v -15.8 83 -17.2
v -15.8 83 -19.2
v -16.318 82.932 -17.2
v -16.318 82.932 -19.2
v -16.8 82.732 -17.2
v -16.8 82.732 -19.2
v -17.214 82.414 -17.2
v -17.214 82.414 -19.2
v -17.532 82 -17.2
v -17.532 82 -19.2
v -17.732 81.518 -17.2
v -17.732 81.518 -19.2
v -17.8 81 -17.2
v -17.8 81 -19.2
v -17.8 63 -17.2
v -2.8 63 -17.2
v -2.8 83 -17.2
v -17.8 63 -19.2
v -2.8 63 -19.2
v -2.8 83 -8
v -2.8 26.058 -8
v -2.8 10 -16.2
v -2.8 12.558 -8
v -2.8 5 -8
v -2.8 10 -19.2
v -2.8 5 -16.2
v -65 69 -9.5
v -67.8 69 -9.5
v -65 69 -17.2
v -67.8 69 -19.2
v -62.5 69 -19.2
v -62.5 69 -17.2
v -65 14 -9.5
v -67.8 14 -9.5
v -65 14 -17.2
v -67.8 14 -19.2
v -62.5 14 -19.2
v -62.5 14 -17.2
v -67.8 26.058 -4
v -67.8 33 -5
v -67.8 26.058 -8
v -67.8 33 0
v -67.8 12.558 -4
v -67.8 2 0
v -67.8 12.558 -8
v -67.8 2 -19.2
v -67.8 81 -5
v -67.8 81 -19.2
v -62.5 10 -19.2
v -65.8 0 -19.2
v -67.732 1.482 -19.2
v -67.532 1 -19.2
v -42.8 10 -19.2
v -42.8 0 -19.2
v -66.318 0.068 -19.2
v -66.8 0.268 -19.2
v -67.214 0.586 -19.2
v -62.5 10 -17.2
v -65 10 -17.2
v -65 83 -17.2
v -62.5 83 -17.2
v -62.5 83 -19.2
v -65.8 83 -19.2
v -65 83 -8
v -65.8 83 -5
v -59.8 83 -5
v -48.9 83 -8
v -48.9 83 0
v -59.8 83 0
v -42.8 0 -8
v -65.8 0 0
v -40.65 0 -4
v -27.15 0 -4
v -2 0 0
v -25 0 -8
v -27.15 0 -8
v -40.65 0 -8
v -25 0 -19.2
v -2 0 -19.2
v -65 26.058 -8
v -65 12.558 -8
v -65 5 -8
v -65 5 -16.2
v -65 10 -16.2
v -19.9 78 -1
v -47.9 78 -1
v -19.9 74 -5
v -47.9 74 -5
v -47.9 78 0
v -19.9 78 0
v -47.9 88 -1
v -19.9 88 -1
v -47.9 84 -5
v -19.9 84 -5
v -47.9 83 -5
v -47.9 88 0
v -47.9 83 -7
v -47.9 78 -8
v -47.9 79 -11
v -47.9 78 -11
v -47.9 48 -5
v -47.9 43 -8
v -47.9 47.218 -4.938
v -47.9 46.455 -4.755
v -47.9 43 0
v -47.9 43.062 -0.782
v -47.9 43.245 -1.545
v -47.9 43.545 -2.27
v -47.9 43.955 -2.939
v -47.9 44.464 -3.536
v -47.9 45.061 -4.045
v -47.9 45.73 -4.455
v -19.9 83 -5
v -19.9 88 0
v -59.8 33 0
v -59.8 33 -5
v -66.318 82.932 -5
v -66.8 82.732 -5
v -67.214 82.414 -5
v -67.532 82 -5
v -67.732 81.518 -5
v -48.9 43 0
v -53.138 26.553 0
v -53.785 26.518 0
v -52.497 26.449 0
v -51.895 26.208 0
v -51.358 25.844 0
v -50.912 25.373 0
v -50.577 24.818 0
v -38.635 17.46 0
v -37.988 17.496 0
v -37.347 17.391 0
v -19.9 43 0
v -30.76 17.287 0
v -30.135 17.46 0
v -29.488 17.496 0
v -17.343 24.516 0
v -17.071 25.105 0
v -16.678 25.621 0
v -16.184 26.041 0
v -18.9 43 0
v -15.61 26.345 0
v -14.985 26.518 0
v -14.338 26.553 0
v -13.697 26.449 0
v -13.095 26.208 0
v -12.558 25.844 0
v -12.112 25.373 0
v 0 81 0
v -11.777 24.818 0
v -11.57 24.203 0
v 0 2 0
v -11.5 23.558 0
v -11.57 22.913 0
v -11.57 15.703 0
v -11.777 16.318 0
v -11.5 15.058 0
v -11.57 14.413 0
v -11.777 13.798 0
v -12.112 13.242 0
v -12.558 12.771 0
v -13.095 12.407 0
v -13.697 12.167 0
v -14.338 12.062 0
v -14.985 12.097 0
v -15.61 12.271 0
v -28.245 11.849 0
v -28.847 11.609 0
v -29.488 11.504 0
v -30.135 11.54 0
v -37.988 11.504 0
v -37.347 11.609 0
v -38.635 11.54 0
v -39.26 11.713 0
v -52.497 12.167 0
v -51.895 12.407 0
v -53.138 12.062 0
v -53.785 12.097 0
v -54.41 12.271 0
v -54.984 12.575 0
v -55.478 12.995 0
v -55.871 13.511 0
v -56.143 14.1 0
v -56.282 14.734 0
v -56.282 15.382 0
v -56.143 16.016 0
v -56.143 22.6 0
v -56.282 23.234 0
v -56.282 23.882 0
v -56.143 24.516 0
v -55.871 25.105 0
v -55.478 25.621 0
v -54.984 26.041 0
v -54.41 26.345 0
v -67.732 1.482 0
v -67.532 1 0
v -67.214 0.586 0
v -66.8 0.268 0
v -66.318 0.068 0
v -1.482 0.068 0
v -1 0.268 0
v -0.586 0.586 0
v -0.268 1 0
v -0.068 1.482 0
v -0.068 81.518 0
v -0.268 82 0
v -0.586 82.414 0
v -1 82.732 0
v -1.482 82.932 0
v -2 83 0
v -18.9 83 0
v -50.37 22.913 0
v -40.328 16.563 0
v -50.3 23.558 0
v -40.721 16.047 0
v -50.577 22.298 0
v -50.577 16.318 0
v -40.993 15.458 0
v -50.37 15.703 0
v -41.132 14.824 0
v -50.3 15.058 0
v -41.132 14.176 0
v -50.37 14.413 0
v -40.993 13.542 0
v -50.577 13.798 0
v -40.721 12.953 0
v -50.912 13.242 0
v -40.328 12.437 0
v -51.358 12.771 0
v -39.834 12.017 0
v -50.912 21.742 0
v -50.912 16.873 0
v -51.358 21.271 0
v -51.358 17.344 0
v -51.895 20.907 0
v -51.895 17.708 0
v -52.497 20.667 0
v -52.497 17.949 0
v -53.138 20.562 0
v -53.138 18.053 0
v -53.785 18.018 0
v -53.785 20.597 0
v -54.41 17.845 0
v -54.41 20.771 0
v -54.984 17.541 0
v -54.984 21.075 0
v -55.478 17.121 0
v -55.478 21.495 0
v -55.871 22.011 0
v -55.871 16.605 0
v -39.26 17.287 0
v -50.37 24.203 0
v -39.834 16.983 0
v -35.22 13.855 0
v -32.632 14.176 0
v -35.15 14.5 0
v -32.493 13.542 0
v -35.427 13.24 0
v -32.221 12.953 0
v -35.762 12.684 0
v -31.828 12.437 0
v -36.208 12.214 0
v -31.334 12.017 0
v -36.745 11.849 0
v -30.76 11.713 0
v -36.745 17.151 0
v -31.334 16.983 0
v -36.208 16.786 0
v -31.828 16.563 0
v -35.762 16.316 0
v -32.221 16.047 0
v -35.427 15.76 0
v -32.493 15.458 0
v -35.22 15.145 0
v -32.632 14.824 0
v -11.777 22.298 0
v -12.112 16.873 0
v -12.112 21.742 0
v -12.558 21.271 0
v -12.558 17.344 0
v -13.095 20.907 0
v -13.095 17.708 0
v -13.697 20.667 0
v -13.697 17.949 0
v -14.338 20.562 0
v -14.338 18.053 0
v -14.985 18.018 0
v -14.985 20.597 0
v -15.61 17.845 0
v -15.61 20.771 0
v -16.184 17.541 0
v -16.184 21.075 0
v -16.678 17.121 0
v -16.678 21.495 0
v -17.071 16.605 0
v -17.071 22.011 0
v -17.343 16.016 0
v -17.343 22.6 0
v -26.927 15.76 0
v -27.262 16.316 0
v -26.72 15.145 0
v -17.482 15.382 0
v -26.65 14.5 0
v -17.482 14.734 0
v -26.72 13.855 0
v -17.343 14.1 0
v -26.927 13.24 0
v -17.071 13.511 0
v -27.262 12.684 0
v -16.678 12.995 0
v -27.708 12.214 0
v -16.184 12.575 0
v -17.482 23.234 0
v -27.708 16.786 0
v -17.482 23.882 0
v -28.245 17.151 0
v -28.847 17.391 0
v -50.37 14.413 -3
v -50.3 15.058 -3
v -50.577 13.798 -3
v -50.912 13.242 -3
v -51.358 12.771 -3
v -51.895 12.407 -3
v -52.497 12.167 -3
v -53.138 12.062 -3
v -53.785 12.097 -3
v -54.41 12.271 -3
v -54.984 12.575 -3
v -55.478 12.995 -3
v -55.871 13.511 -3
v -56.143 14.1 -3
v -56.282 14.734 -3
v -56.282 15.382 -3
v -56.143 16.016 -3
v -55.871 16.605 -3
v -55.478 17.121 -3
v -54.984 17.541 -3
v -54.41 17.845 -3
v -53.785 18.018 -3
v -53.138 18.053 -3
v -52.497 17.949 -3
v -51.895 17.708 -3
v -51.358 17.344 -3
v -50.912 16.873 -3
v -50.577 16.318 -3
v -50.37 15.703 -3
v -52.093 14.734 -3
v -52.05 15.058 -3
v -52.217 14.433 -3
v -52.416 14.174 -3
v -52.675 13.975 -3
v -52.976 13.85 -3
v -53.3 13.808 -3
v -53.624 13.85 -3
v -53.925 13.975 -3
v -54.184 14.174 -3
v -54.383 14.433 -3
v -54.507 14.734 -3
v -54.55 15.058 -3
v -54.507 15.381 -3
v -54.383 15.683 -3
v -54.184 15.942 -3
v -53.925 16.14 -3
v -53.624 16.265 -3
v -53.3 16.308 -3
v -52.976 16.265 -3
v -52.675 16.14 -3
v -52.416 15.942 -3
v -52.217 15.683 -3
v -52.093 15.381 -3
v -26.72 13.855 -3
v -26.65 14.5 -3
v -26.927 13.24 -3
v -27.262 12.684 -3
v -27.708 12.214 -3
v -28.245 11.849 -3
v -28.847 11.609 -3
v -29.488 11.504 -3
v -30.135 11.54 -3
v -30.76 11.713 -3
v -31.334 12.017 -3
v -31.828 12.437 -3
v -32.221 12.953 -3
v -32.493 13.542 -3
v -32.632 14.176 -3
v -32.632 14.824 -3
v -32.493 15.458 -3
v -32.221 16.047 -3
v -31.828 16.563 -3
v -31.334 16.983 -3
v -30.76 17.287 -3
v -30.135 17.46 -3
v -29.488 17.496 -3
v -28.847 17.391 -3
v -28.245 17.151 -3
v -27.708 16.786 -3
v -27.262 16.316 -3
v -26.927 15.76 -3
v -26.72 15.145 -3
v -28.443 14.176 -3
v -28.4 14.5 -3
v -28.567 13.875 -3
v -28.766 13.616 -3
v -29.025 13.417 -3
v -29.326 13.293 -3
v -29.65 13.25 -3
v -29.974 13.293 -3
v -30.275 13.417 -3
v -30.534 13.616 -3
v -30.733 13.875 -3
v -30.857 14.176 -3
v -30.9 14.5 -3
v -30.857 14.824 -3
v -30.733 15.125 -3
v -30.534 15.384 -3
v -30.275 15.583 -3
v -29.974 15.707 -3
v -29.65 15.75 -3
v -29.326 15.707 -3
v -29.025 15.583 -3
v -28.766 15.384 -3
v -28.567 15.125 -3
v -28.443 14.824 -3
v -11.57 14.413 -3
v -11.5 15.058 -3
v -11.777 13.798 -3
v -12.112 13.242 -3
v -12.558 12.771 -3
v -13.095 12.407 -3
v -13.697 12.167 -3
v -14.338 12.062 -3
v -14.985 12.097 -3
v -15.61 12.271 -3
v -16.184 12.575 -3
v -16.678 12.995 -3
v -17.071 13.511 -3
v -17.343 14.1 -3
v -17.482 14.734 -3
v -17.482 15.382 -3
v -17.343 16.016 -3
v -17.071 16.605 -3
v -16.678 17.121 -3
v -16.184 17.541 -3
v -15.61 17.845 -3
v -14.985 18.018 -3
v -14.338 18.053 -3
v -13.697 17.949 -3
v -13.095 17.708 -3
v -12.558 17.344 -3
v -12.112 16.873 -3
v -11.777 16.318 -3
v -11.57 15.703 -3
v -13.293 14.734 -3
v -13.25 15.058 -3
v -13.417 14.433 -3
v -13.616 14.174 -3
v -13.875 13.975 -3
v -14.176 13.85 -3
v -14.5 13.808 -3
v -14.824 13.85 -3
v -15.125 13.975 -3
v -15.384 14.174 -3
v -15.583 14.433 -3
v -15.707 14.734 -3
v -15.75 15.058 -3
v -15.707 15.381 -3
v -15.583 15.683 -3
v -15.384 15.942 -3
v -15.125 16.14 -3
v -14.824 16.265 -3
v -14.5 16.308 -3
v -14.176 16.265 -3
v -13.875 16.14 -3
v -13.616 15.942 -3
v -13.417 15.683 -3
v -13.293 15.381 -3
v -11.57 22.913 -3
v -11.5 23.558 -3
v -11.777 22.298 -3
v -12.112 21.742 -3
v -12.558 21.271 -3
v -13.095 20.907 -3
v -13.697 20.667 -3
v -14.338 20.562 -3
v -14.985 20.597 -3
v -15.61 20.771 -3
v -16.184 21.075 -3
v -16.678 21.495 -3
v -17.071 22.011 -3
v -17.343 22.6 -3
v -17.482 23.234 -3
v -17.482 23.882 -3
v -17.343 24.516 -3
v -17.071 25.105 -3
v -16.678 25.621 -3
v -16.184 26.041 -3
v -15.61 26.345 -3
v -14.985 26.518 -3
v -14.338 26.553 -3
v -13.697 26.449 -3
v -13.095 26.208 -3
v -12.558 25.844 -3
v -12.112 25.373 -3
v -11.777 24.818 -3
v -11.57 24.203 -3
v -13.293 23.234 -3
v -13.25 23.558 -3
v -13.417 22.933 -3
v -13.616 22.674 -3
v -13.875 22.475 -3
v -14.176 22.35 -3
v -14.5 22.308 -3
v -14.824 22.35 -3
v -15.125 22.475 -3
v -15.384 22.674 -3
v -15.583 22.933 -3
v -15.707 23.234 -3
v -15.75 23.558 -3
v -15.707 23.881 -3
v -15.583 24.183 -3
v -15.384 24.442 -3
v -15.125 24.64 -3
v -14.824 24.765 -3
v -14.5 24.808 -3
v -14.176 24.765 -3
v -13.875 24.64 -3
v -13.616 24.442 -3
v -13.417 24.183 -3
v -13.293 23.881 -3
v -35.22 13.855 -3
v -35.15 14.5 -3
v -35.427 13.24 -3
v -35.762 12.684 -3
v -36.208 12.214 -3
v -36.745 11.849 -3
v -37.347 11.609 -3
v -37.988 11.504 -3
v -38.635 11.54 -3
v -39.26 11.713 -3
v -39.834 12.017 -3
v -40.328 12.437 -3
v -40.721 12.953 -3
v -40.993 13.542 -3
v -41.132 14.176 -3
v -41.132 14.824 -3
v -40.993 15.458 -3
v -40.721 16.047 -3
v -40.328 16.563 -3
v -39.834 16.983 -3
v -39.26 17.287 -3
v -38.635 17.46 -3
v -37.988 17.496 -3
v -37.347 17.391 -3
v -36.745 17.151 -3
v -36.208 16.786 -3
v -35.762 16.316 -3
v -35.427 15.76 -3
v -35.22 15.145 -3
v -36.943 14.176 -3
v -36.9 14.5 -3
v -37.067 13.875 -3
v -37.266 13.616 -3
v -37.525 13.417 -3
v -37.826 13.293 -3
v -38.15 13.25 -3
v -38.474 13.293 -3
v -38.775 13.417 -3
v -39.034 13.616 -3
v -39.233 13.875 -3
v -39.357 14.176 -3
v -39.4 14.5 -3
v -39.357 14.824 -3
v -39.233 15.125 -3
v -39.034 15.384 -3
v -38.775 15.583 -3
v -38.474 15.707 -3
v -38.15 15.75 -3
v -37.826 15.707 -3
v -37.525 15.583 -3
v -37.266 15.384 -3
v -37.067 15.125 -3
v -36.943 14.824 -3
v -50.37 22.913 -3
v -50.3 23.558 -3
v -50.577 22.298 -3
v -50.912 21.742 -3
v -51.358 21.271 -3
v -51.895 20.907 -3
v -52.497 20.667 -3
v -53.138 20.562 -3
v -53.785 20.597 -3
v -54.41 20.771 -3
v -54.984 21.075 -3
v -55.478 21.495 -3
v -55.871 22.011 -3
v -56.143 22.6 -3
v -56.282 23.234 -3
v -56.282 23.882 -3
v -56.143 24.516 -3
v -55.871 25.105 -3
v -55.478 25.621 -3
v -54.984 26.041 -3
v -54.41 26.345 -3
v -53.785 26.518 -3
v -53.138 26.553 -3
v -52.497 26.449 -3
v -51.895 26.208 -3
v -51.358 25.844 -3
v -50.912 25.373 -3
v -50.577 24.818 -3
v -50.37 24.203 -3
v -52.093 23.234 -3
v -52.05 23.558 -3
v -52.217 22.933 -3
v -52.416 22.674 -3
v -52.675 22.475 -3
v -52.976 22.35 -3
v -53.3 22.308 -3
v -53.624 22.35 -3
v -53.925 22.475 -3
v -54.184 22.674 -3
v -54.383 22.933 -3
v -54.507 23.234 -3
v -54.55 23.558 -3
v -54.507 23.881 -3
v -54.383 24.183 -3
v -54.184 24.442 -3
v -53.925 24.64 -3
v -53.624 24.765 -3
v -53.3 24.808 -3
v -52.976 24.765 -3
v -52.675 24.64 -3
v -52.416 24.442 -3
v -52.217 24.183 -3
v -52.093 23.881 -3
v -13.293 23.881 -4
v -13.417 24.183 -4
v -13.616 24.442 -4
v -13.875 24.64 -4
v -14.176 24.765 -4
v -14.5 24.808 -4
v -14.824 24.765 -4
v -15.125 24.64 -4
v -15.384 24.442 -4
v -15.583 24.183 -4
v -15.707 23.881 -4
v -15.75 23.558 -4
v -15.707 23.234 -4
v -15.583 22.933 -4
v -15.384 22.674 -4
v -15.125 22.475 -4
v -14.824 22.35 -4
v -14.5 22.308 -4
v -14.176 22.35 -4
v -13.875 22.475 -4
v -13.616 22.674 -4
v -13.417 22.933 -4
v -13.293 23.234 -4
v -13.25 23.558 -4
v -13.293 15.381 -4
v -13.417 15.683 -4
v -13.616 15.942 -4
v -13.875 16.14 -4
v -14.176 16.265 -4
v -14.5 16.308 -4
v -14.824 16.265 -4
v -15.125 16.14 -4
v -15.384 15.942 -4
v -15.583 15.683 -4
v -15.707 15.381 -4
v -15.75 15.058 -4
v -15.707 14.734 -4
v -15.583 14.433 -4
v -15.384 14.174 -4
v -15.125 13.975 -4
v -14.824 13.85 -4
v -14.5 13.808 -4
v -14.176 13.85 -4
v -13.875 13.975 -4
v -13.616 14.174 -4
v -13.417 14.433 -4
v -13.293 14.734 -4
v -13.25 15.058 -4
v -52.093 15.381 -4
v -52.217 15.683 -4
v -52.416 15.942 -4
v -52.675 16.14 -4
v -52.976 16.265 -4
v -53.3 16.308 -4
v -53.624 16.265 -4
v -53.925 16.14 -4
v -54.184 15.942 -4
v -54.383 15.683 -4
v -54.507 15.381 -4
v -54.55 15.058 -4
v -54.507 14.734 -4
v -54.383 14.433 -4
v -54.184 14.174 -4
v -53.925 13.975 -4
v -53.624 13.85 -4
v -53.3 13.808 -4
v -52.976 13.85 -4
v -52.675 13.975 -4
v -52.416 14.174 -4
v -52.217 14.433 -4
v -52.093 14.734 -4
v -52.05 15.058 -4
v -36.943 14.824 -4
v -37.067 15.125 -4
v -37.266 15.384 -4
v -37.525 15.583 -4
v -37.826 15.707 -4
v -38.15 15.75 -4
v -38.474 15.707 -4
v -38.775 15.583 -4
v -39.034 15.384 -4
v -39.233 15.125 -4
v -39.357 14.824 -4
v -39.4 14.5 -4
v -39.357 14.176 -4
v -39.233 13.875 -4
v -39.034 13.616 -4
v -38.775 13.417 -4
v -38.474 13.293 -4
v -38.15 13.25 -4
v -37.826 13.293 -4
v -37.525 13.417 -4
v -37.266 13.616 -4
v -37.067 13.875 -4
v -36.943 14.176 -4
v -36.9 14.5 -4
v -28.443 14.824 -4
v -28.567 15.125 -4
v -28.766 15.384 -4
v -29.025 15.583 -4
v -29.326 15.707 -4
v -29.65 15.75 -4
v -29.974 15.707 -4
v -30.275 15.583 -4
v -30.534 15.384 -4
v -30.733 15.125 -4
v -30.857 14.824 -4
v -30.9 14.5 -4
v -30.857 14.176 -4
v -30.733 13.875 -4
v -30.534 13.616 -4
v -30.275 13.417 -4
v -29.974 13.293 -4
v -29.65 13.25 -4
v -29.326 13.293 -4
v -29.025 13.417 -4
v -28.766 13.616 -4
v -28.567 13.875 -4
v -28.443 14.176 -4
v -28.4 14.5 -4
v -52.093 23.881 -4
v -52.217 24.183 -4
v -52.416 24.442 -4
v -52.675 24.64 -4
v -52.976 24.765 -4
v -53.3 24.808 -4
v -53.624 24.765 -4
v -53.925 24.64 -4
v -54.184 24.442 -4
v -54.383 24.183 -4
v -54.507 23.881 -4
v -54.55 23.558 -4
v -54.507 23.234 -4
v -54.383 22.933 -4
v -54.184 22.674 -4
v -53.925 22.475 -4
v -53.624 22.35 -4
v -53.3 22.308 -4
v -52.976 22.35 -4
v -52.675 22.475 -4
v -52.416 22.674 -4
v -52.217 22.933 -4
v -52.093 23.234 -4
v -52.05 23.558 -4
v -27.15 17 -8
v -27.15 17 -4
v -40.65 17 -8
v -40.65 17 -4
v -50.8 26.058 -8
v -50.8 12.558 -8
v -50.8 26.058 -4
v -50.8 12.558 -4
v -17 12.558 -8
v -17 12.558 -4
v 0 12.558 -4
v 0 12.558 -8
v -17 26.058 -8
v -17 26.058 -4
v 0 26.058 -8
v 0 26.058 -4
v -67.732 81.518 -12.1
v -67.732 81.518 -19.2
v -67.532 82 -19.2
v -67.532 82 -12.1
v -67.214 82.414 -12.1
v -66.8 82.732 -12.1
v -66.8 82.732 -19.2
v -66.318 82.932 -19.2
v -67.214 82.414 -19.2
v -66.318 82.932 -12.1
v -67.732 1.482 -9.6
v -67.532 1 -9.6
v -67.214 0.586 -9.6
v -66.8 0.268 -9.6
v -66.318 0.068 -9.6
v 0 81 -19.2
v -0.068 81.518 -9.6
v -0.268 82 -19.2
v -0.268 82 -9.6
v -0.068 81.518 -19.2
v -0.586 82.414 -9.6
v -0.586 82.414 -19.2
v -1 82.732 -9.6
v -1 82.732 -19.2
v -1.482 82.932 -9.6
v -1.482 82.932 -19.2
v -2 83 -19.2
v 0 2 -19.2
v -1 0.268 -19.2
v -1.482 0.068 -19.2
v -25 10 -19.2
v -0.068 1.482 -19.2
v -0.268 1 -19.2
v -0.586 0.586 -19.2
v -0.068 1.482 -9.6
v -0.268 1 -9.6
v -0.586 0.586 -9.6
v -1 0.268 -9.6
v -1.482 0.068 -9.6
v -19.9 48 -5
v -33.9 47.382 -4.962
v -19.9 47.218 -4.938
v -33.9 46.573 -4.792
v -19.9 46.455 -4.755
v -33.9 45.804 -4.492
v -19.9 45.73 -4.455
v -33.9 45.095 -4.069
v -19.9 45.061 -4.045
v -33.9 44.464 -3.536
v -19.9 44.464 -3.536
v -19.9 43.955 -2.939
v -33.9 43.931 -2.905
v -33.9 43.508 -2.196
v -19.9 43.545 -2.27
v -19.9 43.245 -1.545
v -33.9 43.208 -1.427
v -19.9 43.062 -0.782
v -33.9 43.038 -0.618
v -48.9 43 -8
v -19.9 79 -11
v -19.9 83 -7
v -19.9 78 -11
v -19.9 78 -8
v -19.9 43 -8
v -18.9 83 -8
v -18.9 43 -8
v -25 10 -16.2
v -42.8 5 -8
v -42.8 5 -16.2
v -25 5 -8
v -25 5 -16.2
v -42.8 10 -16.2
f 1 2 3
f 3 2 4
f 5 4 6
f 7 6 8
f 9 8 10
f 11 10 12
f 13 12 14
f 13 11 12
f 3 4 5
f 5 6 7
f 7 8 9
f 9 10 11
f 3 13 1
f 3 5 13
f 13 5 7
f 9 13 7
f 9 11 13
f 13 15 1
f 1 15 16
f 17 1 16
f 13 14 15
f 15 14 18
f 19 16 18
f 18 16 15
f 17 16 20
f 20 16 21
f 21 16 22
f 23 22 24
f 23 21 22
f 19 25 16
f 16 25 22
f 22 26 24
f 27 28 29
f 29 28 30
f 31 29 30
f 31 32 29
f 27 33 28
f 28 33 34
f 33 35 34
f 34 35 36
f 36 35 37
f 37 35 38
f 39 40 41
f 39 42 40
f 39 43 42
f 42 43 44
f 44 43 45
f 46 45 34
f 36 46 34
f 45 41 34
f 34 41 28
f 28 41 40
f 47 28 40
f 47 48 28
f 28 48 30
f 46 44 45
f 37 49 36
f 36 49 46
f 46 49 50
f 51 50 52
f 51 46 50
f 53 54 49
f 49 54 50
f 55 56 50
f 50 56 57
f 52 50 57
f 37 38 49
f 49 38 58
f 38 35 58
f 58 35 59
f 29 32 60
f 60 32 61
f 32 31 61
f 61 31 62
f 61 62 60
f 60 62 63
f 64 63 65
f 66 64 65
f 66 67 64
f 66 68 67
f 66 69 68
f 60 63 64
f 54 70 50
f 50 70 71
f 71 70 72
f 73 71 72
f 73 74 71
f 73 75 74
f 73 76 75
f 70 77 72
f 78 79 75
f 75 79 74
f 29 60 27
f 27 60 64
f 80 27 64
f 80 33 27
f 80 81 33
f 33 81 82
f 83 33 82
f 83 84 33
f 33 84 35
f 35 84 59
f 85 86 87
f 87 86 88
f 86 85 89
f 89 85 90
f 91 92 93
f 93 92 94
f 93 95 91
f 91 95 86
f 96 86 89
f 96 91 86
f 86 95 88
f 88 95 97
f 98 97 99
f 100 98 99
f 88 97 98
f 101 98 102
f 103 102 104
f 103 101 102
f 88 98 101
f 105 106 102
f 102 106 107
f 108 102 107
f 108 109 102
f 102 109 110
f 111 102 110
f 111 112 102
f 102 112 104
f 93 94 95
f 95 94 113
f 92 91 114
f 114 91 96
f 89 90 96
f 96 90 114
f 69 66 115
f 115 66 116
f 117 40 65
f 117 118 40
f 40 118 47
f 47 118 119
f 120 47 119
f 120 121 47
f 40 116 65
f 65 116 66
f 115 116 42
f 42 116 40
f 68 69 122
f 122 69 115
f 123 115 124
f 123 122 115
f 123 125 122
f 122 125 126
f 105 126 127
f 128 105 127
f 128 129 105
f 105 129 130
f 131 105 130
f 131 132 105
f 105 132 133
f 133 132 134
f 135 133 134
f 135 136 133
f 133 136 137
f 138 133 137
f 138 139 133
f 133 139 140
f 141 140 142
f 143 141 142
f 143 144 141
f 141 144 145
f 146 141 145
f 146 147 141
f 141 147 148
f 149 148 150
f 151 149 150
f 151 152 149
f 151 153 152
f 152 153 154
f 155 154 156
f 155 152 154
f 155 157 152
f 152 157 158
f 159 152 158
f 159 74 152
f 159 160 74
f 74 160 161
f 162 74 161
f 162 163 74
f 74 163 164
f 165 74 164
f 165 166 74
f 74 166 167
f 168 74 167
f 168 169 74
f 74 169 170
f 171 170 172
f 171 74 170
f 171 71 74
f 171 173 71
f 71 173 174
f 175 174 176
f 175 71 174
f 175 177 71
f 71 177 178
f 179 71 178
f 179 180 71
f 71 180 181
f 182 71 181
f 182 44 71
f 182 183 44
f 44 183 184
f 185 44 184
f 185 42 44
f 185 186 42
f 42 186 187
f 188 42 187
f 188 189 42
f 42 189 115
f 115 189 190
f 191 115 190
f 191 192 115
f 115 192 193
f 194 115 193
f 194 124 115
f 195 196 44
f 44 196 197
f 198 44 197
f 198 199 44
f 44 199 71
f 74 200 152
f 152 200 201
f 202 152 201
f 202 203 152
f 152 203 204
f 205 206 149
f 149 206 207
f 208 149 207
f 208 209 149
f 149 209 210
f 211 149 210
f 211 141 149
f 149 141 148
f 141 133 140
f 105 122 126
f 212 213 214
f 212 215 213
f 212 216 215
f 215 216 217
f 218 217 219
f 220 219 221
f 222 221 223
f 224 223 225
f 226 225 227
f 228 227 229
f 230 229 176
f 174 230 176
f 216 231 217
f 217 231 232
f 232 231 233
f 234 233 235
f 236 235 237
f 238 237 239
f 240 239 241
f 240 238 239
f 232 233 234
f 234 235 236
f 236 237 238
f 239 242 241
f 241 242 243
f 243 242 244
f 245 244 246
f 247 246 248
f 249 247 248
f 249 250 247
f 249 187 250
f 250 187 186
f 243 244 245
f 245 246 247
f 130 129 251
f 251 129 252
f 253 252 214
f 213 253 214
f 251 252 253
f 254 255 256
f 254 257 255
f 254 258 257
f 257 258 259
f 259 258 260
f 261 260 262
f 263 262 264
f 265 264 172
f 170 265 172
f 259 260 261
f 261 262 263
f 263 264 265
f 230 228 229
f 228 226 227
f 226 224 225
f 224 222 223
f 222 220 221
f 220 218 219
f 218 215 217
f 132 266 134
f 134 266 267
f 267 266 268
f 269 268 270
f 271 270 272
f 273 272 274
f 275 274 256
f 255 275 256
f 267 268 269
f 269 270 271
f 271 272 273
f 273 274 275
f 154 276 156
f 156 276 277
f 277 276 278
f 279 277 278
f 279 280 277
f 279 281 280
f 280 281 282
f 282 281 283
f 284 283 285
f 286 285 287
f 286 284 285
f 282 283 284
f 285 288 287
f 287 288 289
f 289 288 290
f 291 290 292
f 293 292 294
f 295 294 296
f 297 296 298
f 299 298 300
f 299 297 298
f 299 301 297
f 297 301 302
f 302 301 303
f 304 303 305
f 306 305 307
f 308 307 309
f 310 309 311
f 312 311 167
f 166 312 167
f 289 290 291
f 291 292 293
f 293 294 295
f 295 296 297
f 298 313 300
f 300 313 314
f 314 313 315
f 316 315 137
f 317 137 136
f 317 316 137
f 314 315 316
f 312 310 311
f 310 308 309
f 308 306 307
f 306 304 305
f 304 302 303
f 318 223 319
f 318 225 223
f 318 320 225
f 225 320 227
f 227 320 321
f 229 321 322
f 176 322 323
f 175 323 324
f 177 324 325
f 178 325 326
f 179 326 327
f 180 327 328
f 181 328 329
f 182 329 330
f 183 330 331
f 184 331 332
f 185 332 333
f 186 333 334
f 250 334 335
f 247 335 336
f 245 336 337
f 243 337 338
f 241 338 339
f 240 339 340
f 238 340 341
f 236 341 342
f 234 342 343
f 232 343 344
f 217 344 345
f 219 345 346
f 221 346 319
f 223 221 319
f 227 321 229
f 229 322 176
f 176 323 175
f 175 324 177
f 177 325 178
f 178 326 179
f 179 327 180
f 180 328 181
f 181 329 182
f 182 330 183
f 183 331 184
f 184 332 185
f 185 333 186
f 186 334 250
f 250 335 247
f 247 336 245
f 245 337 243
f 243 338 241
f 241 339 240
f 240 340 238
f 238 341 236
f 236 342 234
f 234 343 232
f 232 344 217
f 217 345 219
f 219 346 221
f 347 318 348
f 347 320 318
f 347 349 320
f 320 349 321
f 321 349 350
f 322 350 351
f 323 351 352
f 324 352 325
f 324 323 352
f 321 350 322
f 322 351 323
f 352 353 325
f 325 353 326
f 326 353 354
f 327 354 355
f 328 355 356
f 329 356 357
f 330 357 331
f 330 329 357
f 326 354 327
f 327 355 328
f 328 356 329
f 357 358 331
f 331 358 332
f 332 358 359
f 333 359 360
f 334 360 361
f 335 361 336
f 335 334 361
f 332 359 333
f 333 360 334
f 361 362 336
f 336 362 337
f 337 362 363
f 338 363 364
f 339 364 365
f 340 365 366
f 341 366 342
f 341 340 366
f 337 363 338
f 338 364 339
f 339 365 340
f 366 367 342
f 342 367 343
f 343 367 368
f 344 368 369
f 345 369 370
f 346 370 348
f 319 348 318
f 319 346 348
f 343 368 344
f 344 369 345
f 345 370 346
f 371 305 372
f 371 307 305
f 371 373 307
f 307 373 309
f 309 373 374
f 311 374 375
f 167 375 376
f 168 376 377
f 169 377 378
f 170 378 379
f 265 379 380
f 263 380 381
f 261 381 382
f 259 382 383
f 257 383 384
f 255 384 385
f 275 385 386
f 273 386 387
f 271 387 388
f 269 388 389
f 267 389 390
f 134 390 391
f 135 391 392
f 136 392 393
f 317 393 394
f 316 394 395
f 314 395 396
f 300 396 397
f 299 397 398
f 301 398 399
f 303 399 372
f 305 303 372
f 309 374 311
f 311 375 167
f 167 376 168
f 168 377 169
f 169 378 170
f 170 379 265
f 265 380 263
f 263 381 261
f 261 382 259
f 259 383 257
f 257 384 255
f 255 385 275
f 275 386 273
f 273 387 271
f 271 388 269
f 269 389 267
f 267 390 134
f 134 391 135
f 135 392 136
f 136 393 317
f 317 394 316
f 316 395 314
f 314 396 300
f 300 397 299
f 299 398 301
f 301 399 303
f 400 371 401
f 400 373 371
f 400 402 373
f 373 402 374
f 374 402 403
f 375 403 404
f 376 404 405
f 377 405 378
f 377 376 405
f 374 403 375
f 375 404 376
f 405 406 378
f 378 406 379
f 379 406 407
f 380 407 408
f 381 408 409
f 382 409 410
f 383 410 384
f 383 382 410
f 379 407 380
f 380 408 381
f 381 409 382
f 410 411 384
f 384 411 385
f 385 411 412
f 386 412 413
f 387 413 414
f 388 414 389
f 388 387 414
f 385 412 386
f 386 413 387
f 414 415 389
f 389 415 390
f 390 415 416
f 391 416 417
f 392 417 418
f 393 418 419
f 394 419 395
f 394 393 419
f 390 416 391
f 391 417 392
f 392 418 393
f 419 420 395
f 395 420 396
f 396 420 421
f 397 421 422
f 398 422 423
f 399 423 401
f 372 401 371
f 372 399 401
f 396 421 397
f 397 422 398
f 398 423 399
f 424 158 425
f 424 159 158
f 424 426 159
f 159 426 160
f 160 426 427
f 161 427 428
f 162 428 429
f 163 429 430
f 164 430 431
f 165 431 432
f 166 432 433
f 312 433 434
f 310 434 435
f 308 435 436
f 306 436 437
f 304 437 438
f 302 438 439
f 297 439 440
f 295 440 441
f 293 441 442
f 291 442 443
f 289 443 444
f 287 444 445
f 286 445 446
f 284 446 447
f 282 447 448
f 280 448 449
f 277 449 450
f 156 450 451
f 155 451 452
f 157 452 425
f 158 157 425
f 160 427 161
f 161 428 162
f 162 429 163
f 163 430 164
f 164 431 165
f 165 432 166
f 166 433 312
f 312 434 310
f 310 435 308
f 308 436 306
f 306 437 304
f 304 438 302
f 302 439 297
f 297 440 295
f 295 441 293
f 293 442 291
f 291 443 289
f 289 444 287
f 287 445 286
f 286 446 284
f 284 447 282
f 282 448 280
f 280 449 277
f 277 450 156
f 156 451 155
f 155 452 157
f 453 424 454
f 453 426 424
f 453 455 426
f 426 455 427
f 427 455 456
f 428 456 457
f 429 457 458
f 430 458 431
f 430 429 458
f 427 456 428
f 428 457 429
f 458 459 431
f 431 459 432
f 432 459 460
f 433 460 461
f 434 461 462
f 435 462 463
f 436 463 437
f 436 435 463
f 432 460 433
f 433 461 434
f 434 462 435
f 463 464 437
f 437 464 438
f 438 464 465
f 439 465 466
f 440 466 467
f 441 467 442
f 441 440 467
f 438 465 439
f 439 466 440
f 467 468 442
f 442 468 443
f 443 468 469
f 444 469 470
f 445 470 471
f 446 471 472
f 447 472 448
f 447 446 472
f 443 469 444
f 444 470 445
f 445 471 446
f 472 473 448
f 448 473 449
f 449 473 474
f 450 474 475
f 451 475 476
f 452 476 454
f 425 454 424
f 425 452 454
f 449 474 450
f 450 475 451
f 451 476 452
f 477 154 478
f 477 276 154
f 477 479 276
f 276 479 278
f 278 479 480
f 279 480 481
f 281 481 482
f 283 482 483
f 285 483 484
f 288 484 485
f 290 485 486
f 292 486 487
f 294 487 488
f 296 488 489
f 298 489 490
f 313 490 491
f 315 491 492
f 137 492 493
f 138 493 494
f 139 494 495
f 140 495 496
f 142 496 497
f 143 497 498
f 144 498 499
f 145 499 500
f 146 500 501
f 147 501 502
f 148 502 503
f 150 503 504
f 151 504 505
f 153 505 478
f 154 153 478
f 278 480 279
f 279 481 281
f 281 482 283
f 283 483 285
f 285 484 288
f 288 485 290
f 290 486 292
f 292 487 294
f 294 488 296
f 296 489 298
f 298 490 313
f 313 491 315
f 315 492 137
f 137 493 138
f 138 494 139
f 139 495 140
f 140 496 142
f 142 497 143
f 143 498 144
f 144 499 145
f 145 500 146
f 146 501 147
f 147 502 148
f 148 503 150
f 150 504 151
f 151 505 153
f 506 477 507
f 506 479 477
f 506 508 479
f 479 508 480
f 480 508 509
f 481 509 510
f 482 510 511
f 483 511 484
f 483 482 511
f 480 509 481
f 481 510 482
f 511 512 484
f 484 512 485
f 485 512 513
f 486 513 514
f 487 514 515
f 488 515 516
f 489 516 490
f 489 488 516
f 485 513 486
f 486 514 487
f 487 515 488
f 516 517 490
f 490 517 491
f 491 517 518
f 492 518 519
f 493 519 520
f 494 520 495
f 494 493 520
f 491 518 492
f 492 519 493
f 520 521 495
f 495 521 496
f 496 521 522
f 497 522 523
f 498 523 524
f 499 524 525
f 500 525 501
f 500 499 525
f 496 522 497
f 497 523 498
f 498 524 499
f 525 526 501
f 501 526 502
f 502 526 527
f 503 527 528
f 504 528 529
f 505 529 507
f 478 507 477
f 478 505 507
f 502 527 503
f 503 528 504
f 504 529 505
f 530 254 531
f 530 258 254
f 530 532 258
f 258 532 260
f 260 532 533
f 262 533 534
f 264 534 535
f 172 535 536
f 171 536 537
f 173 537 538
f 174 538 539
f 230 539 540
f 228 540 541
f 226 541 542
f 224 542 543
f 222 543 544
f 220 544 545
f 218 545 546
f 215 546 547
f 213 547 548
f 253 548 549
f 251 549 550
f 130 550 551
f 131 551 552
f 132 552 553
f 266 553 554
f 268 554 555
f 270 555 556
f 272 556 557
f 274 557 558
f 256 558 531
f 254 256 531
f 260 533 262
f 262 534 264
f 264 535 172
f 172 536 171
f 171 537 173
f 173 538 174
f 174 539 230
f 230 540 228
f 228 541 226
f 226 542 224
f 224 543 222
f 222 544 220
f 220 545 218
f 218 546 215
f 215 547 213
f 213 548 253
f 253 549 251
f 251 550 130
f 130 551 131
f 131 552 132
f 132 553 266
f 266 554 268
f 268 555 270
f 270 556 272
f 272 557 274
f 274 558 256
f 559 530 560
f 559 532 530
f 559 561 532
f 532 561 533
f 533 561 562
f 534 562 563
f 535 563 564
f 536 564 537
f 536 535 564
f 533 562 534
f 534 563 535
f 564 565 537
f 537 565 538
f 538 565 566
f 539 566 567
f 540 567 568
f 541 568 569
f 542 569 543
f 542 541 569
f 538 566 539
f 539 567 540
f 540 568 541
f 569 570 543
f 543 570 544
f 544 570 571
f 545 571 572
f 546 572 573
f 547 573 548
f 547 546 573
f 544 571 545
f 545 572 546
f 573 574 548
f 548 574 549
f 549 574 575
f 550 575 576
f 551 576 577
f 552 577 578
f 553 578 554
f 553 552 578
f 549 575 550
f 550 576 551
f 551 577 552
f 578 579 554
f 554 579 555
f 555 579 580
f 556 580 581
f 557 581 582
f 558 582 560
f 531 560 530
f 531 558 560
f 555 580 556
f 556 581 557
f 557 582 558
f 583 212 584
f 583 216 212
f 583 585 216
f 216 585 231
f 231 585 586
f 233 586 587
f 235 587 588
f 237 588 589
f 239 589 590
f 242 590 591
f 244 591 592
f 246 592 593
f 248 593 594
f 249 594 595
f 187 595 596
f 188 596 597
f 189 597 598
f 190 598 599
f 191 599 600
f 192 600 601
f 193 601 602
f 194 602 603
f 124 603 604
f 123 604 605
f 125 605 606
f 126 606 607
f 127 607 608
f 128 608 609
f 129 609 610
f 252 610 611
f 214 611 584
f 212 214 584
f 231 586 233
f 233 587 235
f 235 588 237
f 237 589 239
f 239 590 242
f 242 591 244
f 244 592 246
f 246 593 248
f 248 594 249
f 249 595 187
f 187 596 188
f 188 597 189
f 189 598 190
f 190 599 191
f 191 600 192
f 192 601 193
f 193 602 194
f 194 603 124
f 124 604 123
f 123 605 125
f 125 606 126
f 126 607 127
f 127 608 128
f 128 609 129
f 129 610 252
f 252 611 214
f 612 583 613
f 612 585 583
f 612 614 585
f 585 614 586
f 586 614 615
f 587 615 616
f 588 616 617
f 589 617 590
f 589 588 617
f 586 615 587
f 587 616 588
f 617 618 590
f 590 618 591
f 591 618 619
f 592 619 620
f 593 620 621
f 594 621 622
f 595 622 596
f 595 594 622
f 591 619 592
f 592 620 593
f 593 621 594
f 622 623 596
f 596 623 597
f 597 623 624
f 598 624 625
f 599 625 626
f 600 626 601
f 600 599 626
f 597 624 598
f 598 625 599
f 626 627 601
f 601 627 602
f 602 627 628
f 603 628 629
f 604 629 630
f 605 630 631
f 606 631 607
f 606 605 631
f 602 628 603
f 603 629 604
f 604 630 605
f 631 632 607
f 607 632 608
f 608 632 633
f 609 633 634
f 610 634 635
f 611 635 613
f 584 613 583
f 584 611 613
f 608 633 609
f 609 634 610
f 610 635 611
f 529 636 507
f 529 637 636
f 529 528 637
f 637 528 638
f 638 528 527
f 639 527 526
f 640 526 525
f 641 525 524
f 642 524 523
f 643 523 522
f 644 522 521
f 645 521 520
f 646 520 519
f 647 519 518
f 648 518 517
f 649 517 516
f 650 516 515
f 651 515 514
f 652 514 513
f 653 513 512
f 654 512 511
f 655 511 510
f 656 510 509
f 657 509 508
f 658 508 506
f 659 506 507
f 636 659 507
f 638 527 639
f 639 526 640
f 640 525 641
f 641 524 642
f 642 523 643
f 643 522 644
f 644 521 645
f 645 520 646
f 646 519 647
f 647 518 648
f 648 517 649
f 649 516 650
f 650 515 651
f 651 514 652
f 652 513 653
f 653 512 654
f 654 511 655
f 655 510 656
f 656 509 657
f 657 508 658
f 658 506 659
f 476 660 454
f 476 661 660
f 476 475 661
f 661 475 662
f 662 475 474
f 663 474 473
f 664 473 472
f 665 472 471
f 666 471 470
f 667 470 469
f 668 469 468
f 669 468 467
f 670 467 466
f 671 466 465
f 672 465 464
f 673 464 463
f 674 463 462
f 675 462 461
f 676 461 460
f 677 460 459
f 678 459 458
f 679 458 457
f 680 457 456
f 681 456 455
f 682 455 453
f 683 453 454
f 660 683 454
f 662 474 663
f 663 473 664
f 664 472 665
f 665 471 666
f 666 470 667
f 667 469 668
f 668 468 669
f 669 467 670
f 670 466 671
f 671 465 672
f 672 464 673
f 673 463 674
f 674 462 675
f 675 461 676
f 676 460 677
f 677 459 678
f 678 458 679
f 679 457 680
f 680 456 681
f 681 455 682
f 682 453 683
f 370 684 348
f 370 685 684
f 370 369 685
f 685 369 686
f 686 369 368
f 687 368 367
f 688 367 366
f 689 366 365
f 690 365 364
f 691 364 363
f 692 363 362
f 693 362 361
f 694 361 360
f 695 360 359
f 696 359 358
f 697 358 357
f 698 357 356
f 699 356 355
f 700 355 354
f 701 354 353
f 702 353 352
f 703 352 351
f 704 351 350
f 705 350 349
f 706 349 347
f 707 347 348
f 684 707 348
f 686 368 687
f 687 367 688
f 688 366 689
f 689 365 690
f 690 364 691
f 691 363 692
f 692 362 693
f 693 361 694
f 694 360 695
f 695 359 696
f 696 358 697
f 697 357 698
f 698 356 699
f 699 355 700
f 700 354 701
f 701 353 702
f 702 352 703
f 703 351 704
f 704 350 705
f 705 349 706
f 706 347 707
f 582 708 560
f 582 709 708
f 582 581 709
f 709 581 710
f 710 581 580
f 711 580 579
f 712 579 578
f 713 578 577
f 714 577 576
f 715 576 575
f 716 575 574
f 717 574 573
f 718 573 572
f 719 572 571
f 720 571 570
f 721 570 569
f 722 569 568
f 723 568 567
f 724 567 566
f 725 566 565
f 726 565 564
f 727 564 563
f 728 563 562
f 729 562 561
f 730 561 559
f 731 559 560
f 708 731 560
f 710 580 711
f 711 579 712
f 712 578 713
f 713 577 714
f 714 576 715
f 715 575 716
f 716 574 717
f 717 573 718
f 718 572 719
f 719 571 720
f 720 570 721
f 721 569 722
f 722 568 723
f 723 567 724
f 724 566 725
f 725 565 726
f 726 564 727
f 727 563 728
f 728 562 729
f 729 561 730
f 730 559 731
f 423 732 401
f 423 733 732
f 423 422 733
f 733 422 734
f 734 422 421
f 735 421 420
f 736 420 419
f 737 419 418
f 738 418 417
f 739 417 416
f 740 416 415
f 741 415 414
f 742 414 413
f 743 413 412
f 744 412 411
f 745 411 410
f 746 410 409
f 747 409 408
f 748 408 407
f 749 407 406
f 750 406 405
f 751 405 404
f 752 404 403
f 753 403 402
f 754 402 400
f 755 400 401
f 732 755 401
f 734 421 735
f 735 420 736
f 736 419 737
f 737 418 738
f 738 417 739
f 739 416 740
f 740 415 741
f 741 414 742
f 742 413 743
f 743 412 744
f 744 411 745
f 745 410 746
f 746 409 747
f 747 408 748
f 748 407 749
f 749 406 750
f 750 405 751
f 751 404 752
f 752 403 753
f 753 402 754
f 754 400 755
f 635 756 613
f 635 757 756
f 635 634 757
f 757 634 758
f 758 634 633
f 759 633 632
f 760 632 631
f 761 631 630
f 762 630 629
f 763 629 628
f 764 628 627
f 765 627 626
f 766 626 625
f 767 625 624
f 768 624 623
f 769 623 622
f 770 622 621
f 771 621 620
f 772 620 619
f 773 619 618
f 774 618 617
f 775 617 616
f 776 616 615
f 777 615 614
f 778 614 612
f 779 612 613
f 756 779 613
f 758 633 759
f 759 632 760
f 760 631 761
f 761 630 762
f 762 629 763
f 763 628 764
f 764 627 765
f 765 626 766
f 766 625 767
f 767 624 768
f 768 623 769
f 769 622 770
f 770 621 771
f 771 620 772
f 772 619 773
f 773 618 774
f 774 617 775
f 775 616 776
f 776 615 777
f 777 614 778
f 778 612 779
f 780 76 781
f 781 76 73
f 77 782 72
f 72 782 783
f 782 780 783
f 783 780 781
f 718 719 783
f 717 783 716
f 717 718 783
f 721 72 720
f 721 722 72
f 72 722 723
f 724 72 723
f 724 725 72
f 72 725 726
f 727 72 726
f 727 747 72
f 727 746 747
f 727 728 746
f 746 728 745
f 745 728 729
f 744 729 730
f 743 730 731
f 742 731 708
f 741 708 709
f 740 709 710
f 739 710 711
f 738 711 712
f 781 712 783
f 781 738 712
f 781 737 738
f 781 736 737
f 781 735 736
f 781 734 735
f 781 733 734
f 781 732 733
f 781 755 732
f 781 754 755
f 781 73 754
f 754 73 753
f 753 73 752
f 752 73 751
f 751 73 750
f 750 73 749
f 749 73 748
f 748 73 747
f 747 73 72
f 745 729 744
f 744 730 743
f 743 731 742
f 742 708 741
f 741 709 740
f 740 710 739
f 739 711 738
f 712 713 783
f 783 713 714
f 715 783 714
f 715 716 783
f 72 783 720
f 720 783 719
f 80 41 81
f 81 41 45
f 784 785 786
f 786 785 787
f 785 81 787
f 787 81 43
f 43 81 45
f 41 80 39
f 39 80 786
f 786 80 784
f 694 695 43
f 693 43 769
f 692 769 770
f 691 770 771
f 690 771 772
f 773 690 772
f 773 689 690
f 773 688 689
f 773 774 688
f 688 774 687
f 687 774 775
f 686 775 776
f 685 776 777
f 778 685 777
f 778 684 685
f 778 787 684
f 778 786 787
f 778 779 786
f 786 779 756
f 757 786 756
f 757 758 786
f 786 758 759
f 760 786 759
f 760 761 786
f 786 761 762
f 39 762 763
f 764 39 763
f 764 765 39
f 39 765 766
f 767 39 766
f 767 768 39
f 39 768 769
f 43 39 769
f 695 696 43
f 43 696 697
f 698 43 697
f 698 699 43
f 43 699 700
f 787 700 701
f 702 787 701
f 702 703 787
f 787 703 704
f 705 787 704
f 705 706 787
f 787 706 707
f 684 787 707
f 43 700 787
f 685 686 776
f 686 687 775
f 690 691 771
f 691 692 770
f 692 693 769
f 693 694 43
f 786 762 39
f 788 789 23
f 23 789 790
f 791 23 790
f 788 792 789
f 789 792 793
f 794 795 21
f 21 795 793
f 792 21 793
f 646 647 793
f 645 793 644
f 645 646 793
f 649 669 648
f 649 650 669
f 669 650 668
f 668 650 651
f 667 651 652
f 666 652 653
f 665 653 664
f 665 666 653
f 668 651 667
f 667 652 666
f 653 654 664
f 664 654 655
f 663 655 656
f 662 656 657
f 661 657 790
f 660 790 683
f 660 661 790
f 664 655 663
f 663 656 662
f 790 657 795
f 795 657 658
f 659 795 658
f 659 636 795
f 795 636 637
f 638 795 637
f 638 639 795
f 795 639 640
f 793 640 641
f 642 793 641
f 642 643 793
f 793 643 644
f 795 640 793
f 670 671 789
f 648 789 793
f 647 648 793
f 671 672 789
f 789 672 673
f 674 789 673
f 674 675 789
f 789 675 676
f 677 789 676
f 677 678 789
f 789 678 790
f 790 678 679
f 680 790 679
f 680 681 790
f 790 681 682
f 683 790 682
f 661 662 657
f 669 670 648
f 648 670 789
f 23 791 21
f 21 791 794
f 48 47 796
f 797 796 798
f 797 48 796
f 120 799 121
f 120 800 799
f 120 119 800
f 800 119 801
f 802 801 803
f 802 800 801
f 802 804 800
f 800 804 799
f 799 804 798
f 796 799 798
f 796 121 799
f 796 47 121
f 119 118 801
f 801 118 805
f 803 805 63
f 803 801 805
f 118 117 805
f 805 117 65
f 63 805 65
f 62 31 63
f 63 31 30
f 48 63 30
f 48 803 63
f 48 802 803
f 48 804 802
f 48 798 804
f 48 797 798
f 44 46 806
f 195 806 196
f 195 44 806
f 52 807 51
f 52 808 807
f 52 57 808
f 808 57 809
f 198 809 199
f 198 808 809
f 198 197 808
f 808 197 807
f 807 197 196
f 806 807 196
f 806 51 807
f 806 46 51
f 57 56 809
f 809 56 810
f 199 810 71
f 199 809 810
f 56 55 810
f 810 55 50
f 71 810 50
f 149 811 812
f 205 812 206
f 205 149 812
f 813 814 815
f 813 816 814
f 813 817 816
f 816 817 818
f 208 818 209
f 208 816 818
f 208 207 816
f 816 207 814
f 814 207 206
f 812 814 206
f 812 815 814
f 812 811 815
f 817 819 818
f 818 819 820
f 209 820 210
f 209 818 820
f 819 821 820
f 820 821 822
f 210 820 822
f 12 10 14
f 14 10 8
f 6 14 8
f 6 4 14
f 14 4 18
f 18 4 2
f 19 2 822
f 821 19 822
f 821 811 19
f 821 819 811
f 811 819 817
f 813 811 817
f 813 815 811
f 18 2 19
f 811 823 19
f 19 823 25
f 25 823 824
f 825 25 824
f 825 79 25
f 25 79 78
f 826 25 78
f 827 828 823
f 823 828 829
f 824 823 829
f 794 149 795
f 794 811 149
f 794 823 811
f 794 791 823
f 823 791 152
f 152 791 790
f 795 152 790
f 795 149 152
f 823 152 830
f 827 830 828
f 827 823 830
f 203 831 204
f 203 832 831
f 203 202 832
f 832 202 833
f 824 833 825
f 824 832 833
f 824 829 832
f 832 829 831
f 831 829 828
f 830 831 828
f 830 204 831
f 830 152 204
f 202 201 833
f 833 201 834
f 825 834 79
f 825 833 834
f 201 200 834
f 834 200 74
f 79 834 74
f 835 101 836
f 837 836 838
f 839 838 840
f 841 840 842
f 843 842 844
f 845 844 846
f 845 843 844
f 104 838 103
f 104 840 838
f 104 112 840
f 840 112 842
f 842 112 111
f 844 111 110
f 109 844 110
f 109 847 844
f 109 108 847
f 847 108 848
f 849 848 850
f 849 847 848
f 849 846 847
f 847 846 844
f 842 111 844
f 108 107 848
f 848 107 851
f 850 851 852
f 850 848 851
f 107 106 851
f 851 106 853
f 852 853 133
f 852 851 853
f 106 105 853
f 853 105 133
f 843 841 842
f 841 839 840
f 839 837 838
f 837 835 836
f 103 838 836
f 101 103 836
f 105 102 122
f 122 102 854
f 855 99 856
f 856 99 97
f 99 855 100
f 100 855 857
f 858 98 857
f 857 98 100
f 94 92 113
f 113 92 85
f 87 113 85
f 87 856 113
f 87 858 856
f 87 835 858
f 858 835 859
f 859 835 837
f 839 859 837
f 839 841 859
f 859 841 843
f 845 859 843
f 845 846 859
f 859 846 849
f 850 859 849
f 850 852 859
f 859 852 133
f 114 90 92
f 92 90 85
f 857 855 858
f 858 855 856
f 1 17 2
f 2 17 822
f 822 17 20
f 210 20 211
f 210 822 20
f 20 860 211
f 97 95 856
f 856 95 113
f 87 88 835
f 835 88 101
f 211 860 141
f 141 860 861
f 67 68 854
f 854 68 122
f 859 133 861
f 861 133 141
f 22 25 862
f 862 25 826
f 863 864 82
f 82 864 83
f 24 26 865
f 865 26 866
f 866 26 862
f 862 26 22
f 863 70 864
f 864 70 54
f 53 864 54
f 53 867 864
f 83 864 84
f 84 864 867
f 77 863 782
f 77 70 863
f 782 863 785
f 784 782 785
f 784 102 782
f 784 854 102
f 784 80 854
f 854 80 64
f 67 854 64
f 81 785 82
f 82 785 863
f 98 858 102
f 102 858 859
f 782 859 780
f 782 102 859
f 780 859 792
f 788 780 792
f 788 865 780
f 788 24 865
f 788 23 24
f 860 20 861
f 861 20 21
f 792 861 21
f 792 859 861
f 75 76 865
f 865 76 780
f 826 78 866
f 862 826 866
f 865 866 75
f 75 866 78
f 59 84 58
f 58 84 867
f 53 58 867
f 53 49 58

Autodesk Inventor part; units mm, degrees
ref_plane "YZ Plane" through (0, 0, 0) normal (1, 0, 0) x (0, 1, 0)
ref_plane "XZ Plane" through (0, 0, 0) normal (0, 1, 0) x (-1, 0, 0)
ref_plane "XY Plane" through (0, 0, 0) normal (0, 0, 1) x (1, 0, 0)
sketch "Sketch2" plane through (0, 0, 0) normal (0, 1, 0) x (-1, 0, 0)
  line L0 (0, 0) -> (67.8, 0)
  line L1 (67.8, 0) -> (67.8, -19.2)
  line L2 (67.8, -19.2) -> (42.8, -19.2)
  line L3 (42.8, -19.2) -> (42.8, -16.2)
  line L4 (42.8, -16.2) -> (65, -16.2)
  line L5 (65, -16.2) -> (65, -8)
  line L6 (65, -8) -> (2.8, -8)
  line L7 (2.8, -8) -> (2.8, -16.2)
  line L8 (2.8, -16.2) -> (25, -16.2)
  line L9 (25, -16.2) -> (25, -19.2)
  line L10 (25, -19.2) -> (0, -19.2)
  line L11 (0, -19.2) -> (0, 0)
  dimension "d2" = 62.2
  dimension "d3" = 2.8
  dimension "d4" = 2.8
  dimension "d5" = 3
  dimension "d6" = 25
  dimension "d7" = 25
  dimension "d8" = 8
  dimension "d9" = 8.2
extrude "Extrusion1" add sketch "Sketch2" along normal blind 10
sketch "Sketch3" plane through (0, 0, 0) normal (0, -1, 0) x (1, 0, 0)
  line L0 (-2.8, -8) -> (-65, -8) projected
  line L1 (-42.8, -8) -> (-65, -8)
  line L2 (-65, -8) -> (-65, -16.2)
  line L3 (-65, -16.2) -> (-42.8, -16.2)
  line L4 (-42.8, -16.2) -> (-42.8, -8)
  line L5 (-42.8, -19.2) -> (-42.8, -16.2) projected
  line L6 (-42.8, -16.2) -> (-65, -16.2) projected
  line L7 (-25, -16.2) -> (-2.8, -16.2)
  line L8 (-2.8, -16.2) -> (-2.8, -8)
  line L9 (-2.8, -8) -> (-25, -8)
  line L10 (-25, -8) -> (-25, -16.2)
  line L11 (-65, -8) -> (-65, -16.2) projected
  point P0 (0, 0)
extrude "Extrusion2" add sketch "Sketch3" against normal blind 5
sketch "Sketch7" plane through (0, 10, 0) normal (0, 1, 0) x (1, 0, 0)
  line L0 (0, 10) -> (0, 0)
  line L1 (0, 0) -> (-67.8, 0)
  line L2 (-67.8, 0) -> (-67.8, 19.2)
  line L3 (0, 10) -> (0, 19.2)
  line L4 (0, 19.2) -> (-2.8, 19.2)
  line L5 (-2.8, 19.2) -> (-2.8, 8)
  line L6 (-2.8, 8) -> (-65, 8)
  line L7 (-65, 8) -> (-65, 19.2)
  line L8 (-65, 19.2) -> (-67.8, 19.2)
  line L9 (-67.8, 19.2) -> (-67.8, 0) projected
  line L10 (0, 19.2) -> (-25, 19.2) projected
  line L11 (-2.8, 8) -> (-65, 8) projected
  line L12 (-65, 8) -> (-65, 16.2) projected
  line L13 (-2.8, 16.2) -> (-2.8, 8) projected
extrude "Extrusion5" add sketch "Sketch7" along normal blind 73
sketch "Sketch10" plane through (0, 83, 0) normal (0, 1, 0) x (1, 0, 0)
  line L0 (-18.9, 0) -> (-48.9, 0)
  line L1 (-48.9, 0) -> (-48.9, 5)
  line L2 (-48.9, 5) -> (-18.9, 5)
  line L3 (-18.9, 5) -> (-18.9, 0)
  line L4 (-2.8, 8) -> (-65, 8) projected
  line L5 (-67.8, 0) -> (0, 0) projected
  line L6 (-33.9, 8) -> (-33.9, 19.521) construction
  line L7 (-33.9, 0) -> (-33.9, -9.399) construction
  dimension "d40" = 3
  dimension "d41" = 30
extrude "Extrusion8" cut sketch "Sketch10" against normal blind 40
sketch "Sketch11" plane through (-48.9, 83, -5) normal (0, 0, 1) x (1, 0, 0)
  line L0 (0, 0) -> (1, 0)
  line L1 (1, 0) -> (1, -40)
  line L2 (1, -40) -> (0, -40)
  line L3 (0, -40) -> (0, 0)
  line L4 (29, 0) -> (30, 0)
  line L5 (30, 0) -> (30, -40)
  line L6 (30, -40) -> (29, -40)
  line L7 (29, -40) -> (29, 0)
  line L8 (30, -40) -> (0, -40) projected
  line L9 (30, 0) -> (30, -40) projected
  line L10 (0, -40) -> (0, 0) projected
  line L11 (0, 0) -> (30, 0) projected
  point P0 (48.9, -83)
  dimension "d44" = 1
  dimension "d45" = 1
extrude "Extrusion9" cut sketch "Sketch11" against normal blind 30 contours L0 L1 L2 L3 | L4 L5 L6 L7
sketch "Sketch13" plane through (-2.8, 5, -8) normal (0, 0, -1) x (-1, 0, 0)
  line L0 (45.1, 78) -> (17.1, 78)
  line L1 (17.1, 78) -> (17.1, 73)
  line L2 (17.1, 73) -> (45.1, 73)
  line L3 (45.1, 73) -> (45.1, 78)
  line L4 (17.1, 78) -> (45.1, 78) projected
  line L5 (17.1, 78) -> (17.1, 38) projected
  line L6 (45.1, 38) -> (45.1, 78) projected
  point P0 (-2.8, -5)
  dimension "d48" = 5
extrude "Extrusion10" add sketch "Sketch13" along normal blind 3
chamfer "Chamfer1" distance 4 angle 45 1 edges at (-33.9, 83, -11)
fillet "Fillet1" radius 5 1 edges at (-33.9, 43, -5)
fillet "Fillet2" radius 2 4 edges at (0, 0, -9.6) (0, 83, -9.6) (-67.8, 0, -9.6) (-67.8, 83, -9.6)
sketch "Sketch16" plane through (-2.8, 5, -8) normal (0, 0, -1) x (-1, 0, 0)
  line L0 (65, 21.0579) -> (48, 21.0579)
  line L1 (48, 21.0579) -> (48, 7.5579)
  line L2 (48, 7.5579) -> (65, 7.5579)
  line L3 (65, 7.5579) -> (65, 21.0579)
  line L4 (24.35, 12) -> (37.85, 12)
  line L5 (37.85, 12) -> (37.85, -5)
  line L6 (37.85, -5) -> (24.35, -5)
  line L7 (24.35, -5) -> (24.35, 12)
  line L8 (40, -5) -> (22.2, -5) projected
  line L9 (22.2, -5) -> (22.2, 5) projected
  line L10 (62.2, 5) -> (62.2, 78) projected
  line L11 (65, -3) -> (65, 76) projected
  line L12 (-2.8, 21.0579) -> (14.2, 21.0579)
  line L13 (14.2, 21.0579) -> (14.2, 7.5579)
  line L14 (14.2, 7.5579) -> (-2.8, 7.5579)
  line L15 (-2.8, 7.5579) -> (-2.8, 21.0579)
  line L16 (-2.8, -3) -> (-2.8, 76) projected
  point P0 (-2.8, -5)
  dimension "d80" = 13.5
  dimension "d81" = 17
  dimension "d82" = 13.5
  dimension "d83" = 17
  dimension "d84" = 2.15
  dimension "d138" = 17
extrude "Extrusion15" cut sketch "Sketch16" against normal blind 4
sketch "Sketch8" plane through (-25, 0, -8) normal (0, 0, -1) x (-1, 0, 0)
  circle A0 centre (4.65, 14.5) radius 1.25
  circle A1 centre (13.15, 14.5) radius 1.25
  line L0 (2.15, 17) -> (15.65, 17) projected
  line L1 (2.15, 0) -> (2.15, 17) projected
  line L2 (15.65, 17) -> (15.65, 0) projected
  circle A2 centre (28.3, 23.5579) radius 1.25
  circle A3 centre (28.3, 15.0579) radius 1.25
  line L3 (25.8, 26.0579) -> (40, 26.0579) projected
  line L4 (25.8, 12.5579) -> (25.8, 26.0579) projected
  line L5 (40, 12.5579) -> (25.8, 12.5579) projected
  circle A4 centre (-10.5, 23.5579) radius 1.25
  circle A5 centre (-10.5, 15.0579) radius 1.25
  line L6 (-8, 26.0579) -> (-8, 12.5579) projected
  line L7 (-8, 12.5579) -> (-25, 12.5579) projected
  line L8 (-25, 26.0579) -> (-8, 26.0579) projected
  point P0 (-25, 0)
  dimension "d28" = 2.5
  dimension "d29" = 2.5
  dimension "d87" = 2.5
  dimension "d88" = 2.5
  dimension "d89" = 2.5
  dimension "d90" = 2.5
  dimension "d91" = 2.5
  dimension "d92" = 2.5
  dimension "d93" = 2.5
  dimension "d94" = 2.5
  dimension "d95" = 2.5
  dimension "d96" = 2.5
  dimension "d139" = 2.5
  dimension "d140" = 2.5
  dimension "d141" = 2.5
  dimension "d142" = 2.5
  dimension "d143" = 2.5
  dimension "d144" = 2.5
extrude "Extrusion16" cut sketch "Sketch8" against normal up to surface (8 mm away)
sketch "Sketch15" plane through (-67.8, 0, 0) normal (0, 0, 1) x (1, 0, 0)
  circle A0 centre (53.3, 15.0579) radius 3
  circle A1 centre (53.3, 23.5579) radius 3
  circle A2 centre (38.15, 14.5) radius 3
  circle A3 centre (29.65, 14.5) radius 3
  circle A4 centre (14.5, 15.0579) radius 3
  circle A5 centre (14.5, 23.5579) radius 3
  circle A6 centre (53.3, 15.0579) radius 1.25 projected
  circle A7 centre (53.3, 23.5579) radius 1.25 projected
  circle A8 centre (38.15, 14.5) radius 1.25 projected
  circle A9 centre (29.65, 14.5) radius 1.25 projected
  circle A10 centre (14.5, 15.0579) radius 1.25 projected
  circle A11 centre (14.5, 23.5579) radius 1.25 projected
  point P0 (67.8, 0)
  dimension "d145" = 6
  dimension "d146" = 6
  dimension "d147" = 6
  dimension "d148" = 6
  dimension "d149" = 6
  dimension "d150" = 6
extrude "Extrusion17" cut sketch "Sketch15" against normal blind 3
sketch "Sketch18" plane through (0, 83, 0) normal (0, 1, 0) x (1, 0, 0)
  line L0 (-67.8, 0) -> (-59.8, 0)
  line L1 (-59.8, 0) -> (-59.8, 5)
  line L2 (-59.8, 5) -> (-67.8, 5)
  line L3 (-67.8, 5) -> (-67.8, 0)
  point P0 (0, 0)
  dimension "d116" = 8
  dimension "d117" = 5
extrude "Extrusion19" cut sketch "Sketch18" against normal blind 50
sketch "Sketch21" plane through (-47.9, 83, -5) normal (0, 0, 1) x (1, 0, 0)
  line L0 (28, -35) -> (28, 0) projected
  line L1 (0, -5) -> (28, -5)
  line L2 (28, -5) -> (28, 5)
  line L3 (28, 5) -> (0, 5)
  line L4 (0, 5) -> (0, -5)
  line L5 (0, 0) -> (0, -35) projected
  line L6 (0, -5) -> (28, -5) projected
  point P0 (47.9, -83)
extrude "Extrusion22" add sketch "Sketch21" along normal up to surface (5 mm away)
chamfer "Chamfer2" distance 4 angle 45 1 edges at (-33.9, 88, -5)
chamfer "Chamfer3" distance 4 angle 45 1 edges at (-33.9, 78, -5)
sketch "Sketch19" plane through (0, 83, 0) normal (0, 1, 0) x (1, 0, 0)
  line L0 (-2.8, 19.2) -> (-17.8, 19.2)
  line L1 (-17.8, 19.2) -> (-17.8, 17.2)
  line L2 (-17.8, 17.2) -> (-2.8, 17.2)
  line L3 (-2.8, 17.2) -> (-2.8, 19.2)
  point P0 (0, 0)
  dimension "d120" = 15
  dimension "d151" = 2
sketch "Sketch17" plane through (0, 83, 0) normal (0, 1, 0) x (1, 0, 0)
  line L0 (-65, 17.2) -> (-62.5, 17.2)
  line L1 (-62.5, 17.2) -> (-62.5, 19.2)
  line L2 (-62.5, 19.2) -> (-65, 19.2)
  line L3 (-65, 19.2) -> (-65, 17.2)
  line L4 (-65, 16.2) -> (-42.8, 16.2) projected
  line L5 (-65, 8) -> (-65, 19.2) projected
  line L6 (-42.8, 19.2) -> (-65, 19.2) projected
  point P0 (0, 0)
  dimension "d111" = 2
  dimension "d112" = 2.5
sketch "Sketch20" plane through (0, 2, 0) normal (1, 0, 0) x (0, 0, -1)
  line L0 (19.2, 67) -> (9.5, 67)
  line L1 (9.5, 67) -> (9.5, 12)
  line L2 (9.5, 12) -> (19.2, 12)
  line L3 (19.2, 12) -> (19.2, 67)
  line L4 (19.2, 81) -> (0, 81) projected
  line L5 (0, -2) -> (19.2, -2) projected
  line L6 (19.2, 0) -> (19.2, 79) projected
  line L7 (8, 3) -> (8, 81) projected
  dimension "d123" = 14
  dimension "d124" = 14
  dimension "d126" = 1.5
ref_plane "Work Plane2" through (-33.9, 2, 0) normal (1, 0, 0) x (0, 0, -1)
extrude "Extrusion25" add sketch "Sketch17" against normal up to next
extrude "Extrusion23" cut sketch "Sketch20" against normal up to surface (5.3 mm away) from surface at -62.5
extrude "Extrusion24" add sketch "Sketch19" against normal blind 20
fillet "Fillet5" radius 2 1 edges at (-17.8, 83, -18.2)
properties part number "ZAPATO ZOWI IZQ2.1"
